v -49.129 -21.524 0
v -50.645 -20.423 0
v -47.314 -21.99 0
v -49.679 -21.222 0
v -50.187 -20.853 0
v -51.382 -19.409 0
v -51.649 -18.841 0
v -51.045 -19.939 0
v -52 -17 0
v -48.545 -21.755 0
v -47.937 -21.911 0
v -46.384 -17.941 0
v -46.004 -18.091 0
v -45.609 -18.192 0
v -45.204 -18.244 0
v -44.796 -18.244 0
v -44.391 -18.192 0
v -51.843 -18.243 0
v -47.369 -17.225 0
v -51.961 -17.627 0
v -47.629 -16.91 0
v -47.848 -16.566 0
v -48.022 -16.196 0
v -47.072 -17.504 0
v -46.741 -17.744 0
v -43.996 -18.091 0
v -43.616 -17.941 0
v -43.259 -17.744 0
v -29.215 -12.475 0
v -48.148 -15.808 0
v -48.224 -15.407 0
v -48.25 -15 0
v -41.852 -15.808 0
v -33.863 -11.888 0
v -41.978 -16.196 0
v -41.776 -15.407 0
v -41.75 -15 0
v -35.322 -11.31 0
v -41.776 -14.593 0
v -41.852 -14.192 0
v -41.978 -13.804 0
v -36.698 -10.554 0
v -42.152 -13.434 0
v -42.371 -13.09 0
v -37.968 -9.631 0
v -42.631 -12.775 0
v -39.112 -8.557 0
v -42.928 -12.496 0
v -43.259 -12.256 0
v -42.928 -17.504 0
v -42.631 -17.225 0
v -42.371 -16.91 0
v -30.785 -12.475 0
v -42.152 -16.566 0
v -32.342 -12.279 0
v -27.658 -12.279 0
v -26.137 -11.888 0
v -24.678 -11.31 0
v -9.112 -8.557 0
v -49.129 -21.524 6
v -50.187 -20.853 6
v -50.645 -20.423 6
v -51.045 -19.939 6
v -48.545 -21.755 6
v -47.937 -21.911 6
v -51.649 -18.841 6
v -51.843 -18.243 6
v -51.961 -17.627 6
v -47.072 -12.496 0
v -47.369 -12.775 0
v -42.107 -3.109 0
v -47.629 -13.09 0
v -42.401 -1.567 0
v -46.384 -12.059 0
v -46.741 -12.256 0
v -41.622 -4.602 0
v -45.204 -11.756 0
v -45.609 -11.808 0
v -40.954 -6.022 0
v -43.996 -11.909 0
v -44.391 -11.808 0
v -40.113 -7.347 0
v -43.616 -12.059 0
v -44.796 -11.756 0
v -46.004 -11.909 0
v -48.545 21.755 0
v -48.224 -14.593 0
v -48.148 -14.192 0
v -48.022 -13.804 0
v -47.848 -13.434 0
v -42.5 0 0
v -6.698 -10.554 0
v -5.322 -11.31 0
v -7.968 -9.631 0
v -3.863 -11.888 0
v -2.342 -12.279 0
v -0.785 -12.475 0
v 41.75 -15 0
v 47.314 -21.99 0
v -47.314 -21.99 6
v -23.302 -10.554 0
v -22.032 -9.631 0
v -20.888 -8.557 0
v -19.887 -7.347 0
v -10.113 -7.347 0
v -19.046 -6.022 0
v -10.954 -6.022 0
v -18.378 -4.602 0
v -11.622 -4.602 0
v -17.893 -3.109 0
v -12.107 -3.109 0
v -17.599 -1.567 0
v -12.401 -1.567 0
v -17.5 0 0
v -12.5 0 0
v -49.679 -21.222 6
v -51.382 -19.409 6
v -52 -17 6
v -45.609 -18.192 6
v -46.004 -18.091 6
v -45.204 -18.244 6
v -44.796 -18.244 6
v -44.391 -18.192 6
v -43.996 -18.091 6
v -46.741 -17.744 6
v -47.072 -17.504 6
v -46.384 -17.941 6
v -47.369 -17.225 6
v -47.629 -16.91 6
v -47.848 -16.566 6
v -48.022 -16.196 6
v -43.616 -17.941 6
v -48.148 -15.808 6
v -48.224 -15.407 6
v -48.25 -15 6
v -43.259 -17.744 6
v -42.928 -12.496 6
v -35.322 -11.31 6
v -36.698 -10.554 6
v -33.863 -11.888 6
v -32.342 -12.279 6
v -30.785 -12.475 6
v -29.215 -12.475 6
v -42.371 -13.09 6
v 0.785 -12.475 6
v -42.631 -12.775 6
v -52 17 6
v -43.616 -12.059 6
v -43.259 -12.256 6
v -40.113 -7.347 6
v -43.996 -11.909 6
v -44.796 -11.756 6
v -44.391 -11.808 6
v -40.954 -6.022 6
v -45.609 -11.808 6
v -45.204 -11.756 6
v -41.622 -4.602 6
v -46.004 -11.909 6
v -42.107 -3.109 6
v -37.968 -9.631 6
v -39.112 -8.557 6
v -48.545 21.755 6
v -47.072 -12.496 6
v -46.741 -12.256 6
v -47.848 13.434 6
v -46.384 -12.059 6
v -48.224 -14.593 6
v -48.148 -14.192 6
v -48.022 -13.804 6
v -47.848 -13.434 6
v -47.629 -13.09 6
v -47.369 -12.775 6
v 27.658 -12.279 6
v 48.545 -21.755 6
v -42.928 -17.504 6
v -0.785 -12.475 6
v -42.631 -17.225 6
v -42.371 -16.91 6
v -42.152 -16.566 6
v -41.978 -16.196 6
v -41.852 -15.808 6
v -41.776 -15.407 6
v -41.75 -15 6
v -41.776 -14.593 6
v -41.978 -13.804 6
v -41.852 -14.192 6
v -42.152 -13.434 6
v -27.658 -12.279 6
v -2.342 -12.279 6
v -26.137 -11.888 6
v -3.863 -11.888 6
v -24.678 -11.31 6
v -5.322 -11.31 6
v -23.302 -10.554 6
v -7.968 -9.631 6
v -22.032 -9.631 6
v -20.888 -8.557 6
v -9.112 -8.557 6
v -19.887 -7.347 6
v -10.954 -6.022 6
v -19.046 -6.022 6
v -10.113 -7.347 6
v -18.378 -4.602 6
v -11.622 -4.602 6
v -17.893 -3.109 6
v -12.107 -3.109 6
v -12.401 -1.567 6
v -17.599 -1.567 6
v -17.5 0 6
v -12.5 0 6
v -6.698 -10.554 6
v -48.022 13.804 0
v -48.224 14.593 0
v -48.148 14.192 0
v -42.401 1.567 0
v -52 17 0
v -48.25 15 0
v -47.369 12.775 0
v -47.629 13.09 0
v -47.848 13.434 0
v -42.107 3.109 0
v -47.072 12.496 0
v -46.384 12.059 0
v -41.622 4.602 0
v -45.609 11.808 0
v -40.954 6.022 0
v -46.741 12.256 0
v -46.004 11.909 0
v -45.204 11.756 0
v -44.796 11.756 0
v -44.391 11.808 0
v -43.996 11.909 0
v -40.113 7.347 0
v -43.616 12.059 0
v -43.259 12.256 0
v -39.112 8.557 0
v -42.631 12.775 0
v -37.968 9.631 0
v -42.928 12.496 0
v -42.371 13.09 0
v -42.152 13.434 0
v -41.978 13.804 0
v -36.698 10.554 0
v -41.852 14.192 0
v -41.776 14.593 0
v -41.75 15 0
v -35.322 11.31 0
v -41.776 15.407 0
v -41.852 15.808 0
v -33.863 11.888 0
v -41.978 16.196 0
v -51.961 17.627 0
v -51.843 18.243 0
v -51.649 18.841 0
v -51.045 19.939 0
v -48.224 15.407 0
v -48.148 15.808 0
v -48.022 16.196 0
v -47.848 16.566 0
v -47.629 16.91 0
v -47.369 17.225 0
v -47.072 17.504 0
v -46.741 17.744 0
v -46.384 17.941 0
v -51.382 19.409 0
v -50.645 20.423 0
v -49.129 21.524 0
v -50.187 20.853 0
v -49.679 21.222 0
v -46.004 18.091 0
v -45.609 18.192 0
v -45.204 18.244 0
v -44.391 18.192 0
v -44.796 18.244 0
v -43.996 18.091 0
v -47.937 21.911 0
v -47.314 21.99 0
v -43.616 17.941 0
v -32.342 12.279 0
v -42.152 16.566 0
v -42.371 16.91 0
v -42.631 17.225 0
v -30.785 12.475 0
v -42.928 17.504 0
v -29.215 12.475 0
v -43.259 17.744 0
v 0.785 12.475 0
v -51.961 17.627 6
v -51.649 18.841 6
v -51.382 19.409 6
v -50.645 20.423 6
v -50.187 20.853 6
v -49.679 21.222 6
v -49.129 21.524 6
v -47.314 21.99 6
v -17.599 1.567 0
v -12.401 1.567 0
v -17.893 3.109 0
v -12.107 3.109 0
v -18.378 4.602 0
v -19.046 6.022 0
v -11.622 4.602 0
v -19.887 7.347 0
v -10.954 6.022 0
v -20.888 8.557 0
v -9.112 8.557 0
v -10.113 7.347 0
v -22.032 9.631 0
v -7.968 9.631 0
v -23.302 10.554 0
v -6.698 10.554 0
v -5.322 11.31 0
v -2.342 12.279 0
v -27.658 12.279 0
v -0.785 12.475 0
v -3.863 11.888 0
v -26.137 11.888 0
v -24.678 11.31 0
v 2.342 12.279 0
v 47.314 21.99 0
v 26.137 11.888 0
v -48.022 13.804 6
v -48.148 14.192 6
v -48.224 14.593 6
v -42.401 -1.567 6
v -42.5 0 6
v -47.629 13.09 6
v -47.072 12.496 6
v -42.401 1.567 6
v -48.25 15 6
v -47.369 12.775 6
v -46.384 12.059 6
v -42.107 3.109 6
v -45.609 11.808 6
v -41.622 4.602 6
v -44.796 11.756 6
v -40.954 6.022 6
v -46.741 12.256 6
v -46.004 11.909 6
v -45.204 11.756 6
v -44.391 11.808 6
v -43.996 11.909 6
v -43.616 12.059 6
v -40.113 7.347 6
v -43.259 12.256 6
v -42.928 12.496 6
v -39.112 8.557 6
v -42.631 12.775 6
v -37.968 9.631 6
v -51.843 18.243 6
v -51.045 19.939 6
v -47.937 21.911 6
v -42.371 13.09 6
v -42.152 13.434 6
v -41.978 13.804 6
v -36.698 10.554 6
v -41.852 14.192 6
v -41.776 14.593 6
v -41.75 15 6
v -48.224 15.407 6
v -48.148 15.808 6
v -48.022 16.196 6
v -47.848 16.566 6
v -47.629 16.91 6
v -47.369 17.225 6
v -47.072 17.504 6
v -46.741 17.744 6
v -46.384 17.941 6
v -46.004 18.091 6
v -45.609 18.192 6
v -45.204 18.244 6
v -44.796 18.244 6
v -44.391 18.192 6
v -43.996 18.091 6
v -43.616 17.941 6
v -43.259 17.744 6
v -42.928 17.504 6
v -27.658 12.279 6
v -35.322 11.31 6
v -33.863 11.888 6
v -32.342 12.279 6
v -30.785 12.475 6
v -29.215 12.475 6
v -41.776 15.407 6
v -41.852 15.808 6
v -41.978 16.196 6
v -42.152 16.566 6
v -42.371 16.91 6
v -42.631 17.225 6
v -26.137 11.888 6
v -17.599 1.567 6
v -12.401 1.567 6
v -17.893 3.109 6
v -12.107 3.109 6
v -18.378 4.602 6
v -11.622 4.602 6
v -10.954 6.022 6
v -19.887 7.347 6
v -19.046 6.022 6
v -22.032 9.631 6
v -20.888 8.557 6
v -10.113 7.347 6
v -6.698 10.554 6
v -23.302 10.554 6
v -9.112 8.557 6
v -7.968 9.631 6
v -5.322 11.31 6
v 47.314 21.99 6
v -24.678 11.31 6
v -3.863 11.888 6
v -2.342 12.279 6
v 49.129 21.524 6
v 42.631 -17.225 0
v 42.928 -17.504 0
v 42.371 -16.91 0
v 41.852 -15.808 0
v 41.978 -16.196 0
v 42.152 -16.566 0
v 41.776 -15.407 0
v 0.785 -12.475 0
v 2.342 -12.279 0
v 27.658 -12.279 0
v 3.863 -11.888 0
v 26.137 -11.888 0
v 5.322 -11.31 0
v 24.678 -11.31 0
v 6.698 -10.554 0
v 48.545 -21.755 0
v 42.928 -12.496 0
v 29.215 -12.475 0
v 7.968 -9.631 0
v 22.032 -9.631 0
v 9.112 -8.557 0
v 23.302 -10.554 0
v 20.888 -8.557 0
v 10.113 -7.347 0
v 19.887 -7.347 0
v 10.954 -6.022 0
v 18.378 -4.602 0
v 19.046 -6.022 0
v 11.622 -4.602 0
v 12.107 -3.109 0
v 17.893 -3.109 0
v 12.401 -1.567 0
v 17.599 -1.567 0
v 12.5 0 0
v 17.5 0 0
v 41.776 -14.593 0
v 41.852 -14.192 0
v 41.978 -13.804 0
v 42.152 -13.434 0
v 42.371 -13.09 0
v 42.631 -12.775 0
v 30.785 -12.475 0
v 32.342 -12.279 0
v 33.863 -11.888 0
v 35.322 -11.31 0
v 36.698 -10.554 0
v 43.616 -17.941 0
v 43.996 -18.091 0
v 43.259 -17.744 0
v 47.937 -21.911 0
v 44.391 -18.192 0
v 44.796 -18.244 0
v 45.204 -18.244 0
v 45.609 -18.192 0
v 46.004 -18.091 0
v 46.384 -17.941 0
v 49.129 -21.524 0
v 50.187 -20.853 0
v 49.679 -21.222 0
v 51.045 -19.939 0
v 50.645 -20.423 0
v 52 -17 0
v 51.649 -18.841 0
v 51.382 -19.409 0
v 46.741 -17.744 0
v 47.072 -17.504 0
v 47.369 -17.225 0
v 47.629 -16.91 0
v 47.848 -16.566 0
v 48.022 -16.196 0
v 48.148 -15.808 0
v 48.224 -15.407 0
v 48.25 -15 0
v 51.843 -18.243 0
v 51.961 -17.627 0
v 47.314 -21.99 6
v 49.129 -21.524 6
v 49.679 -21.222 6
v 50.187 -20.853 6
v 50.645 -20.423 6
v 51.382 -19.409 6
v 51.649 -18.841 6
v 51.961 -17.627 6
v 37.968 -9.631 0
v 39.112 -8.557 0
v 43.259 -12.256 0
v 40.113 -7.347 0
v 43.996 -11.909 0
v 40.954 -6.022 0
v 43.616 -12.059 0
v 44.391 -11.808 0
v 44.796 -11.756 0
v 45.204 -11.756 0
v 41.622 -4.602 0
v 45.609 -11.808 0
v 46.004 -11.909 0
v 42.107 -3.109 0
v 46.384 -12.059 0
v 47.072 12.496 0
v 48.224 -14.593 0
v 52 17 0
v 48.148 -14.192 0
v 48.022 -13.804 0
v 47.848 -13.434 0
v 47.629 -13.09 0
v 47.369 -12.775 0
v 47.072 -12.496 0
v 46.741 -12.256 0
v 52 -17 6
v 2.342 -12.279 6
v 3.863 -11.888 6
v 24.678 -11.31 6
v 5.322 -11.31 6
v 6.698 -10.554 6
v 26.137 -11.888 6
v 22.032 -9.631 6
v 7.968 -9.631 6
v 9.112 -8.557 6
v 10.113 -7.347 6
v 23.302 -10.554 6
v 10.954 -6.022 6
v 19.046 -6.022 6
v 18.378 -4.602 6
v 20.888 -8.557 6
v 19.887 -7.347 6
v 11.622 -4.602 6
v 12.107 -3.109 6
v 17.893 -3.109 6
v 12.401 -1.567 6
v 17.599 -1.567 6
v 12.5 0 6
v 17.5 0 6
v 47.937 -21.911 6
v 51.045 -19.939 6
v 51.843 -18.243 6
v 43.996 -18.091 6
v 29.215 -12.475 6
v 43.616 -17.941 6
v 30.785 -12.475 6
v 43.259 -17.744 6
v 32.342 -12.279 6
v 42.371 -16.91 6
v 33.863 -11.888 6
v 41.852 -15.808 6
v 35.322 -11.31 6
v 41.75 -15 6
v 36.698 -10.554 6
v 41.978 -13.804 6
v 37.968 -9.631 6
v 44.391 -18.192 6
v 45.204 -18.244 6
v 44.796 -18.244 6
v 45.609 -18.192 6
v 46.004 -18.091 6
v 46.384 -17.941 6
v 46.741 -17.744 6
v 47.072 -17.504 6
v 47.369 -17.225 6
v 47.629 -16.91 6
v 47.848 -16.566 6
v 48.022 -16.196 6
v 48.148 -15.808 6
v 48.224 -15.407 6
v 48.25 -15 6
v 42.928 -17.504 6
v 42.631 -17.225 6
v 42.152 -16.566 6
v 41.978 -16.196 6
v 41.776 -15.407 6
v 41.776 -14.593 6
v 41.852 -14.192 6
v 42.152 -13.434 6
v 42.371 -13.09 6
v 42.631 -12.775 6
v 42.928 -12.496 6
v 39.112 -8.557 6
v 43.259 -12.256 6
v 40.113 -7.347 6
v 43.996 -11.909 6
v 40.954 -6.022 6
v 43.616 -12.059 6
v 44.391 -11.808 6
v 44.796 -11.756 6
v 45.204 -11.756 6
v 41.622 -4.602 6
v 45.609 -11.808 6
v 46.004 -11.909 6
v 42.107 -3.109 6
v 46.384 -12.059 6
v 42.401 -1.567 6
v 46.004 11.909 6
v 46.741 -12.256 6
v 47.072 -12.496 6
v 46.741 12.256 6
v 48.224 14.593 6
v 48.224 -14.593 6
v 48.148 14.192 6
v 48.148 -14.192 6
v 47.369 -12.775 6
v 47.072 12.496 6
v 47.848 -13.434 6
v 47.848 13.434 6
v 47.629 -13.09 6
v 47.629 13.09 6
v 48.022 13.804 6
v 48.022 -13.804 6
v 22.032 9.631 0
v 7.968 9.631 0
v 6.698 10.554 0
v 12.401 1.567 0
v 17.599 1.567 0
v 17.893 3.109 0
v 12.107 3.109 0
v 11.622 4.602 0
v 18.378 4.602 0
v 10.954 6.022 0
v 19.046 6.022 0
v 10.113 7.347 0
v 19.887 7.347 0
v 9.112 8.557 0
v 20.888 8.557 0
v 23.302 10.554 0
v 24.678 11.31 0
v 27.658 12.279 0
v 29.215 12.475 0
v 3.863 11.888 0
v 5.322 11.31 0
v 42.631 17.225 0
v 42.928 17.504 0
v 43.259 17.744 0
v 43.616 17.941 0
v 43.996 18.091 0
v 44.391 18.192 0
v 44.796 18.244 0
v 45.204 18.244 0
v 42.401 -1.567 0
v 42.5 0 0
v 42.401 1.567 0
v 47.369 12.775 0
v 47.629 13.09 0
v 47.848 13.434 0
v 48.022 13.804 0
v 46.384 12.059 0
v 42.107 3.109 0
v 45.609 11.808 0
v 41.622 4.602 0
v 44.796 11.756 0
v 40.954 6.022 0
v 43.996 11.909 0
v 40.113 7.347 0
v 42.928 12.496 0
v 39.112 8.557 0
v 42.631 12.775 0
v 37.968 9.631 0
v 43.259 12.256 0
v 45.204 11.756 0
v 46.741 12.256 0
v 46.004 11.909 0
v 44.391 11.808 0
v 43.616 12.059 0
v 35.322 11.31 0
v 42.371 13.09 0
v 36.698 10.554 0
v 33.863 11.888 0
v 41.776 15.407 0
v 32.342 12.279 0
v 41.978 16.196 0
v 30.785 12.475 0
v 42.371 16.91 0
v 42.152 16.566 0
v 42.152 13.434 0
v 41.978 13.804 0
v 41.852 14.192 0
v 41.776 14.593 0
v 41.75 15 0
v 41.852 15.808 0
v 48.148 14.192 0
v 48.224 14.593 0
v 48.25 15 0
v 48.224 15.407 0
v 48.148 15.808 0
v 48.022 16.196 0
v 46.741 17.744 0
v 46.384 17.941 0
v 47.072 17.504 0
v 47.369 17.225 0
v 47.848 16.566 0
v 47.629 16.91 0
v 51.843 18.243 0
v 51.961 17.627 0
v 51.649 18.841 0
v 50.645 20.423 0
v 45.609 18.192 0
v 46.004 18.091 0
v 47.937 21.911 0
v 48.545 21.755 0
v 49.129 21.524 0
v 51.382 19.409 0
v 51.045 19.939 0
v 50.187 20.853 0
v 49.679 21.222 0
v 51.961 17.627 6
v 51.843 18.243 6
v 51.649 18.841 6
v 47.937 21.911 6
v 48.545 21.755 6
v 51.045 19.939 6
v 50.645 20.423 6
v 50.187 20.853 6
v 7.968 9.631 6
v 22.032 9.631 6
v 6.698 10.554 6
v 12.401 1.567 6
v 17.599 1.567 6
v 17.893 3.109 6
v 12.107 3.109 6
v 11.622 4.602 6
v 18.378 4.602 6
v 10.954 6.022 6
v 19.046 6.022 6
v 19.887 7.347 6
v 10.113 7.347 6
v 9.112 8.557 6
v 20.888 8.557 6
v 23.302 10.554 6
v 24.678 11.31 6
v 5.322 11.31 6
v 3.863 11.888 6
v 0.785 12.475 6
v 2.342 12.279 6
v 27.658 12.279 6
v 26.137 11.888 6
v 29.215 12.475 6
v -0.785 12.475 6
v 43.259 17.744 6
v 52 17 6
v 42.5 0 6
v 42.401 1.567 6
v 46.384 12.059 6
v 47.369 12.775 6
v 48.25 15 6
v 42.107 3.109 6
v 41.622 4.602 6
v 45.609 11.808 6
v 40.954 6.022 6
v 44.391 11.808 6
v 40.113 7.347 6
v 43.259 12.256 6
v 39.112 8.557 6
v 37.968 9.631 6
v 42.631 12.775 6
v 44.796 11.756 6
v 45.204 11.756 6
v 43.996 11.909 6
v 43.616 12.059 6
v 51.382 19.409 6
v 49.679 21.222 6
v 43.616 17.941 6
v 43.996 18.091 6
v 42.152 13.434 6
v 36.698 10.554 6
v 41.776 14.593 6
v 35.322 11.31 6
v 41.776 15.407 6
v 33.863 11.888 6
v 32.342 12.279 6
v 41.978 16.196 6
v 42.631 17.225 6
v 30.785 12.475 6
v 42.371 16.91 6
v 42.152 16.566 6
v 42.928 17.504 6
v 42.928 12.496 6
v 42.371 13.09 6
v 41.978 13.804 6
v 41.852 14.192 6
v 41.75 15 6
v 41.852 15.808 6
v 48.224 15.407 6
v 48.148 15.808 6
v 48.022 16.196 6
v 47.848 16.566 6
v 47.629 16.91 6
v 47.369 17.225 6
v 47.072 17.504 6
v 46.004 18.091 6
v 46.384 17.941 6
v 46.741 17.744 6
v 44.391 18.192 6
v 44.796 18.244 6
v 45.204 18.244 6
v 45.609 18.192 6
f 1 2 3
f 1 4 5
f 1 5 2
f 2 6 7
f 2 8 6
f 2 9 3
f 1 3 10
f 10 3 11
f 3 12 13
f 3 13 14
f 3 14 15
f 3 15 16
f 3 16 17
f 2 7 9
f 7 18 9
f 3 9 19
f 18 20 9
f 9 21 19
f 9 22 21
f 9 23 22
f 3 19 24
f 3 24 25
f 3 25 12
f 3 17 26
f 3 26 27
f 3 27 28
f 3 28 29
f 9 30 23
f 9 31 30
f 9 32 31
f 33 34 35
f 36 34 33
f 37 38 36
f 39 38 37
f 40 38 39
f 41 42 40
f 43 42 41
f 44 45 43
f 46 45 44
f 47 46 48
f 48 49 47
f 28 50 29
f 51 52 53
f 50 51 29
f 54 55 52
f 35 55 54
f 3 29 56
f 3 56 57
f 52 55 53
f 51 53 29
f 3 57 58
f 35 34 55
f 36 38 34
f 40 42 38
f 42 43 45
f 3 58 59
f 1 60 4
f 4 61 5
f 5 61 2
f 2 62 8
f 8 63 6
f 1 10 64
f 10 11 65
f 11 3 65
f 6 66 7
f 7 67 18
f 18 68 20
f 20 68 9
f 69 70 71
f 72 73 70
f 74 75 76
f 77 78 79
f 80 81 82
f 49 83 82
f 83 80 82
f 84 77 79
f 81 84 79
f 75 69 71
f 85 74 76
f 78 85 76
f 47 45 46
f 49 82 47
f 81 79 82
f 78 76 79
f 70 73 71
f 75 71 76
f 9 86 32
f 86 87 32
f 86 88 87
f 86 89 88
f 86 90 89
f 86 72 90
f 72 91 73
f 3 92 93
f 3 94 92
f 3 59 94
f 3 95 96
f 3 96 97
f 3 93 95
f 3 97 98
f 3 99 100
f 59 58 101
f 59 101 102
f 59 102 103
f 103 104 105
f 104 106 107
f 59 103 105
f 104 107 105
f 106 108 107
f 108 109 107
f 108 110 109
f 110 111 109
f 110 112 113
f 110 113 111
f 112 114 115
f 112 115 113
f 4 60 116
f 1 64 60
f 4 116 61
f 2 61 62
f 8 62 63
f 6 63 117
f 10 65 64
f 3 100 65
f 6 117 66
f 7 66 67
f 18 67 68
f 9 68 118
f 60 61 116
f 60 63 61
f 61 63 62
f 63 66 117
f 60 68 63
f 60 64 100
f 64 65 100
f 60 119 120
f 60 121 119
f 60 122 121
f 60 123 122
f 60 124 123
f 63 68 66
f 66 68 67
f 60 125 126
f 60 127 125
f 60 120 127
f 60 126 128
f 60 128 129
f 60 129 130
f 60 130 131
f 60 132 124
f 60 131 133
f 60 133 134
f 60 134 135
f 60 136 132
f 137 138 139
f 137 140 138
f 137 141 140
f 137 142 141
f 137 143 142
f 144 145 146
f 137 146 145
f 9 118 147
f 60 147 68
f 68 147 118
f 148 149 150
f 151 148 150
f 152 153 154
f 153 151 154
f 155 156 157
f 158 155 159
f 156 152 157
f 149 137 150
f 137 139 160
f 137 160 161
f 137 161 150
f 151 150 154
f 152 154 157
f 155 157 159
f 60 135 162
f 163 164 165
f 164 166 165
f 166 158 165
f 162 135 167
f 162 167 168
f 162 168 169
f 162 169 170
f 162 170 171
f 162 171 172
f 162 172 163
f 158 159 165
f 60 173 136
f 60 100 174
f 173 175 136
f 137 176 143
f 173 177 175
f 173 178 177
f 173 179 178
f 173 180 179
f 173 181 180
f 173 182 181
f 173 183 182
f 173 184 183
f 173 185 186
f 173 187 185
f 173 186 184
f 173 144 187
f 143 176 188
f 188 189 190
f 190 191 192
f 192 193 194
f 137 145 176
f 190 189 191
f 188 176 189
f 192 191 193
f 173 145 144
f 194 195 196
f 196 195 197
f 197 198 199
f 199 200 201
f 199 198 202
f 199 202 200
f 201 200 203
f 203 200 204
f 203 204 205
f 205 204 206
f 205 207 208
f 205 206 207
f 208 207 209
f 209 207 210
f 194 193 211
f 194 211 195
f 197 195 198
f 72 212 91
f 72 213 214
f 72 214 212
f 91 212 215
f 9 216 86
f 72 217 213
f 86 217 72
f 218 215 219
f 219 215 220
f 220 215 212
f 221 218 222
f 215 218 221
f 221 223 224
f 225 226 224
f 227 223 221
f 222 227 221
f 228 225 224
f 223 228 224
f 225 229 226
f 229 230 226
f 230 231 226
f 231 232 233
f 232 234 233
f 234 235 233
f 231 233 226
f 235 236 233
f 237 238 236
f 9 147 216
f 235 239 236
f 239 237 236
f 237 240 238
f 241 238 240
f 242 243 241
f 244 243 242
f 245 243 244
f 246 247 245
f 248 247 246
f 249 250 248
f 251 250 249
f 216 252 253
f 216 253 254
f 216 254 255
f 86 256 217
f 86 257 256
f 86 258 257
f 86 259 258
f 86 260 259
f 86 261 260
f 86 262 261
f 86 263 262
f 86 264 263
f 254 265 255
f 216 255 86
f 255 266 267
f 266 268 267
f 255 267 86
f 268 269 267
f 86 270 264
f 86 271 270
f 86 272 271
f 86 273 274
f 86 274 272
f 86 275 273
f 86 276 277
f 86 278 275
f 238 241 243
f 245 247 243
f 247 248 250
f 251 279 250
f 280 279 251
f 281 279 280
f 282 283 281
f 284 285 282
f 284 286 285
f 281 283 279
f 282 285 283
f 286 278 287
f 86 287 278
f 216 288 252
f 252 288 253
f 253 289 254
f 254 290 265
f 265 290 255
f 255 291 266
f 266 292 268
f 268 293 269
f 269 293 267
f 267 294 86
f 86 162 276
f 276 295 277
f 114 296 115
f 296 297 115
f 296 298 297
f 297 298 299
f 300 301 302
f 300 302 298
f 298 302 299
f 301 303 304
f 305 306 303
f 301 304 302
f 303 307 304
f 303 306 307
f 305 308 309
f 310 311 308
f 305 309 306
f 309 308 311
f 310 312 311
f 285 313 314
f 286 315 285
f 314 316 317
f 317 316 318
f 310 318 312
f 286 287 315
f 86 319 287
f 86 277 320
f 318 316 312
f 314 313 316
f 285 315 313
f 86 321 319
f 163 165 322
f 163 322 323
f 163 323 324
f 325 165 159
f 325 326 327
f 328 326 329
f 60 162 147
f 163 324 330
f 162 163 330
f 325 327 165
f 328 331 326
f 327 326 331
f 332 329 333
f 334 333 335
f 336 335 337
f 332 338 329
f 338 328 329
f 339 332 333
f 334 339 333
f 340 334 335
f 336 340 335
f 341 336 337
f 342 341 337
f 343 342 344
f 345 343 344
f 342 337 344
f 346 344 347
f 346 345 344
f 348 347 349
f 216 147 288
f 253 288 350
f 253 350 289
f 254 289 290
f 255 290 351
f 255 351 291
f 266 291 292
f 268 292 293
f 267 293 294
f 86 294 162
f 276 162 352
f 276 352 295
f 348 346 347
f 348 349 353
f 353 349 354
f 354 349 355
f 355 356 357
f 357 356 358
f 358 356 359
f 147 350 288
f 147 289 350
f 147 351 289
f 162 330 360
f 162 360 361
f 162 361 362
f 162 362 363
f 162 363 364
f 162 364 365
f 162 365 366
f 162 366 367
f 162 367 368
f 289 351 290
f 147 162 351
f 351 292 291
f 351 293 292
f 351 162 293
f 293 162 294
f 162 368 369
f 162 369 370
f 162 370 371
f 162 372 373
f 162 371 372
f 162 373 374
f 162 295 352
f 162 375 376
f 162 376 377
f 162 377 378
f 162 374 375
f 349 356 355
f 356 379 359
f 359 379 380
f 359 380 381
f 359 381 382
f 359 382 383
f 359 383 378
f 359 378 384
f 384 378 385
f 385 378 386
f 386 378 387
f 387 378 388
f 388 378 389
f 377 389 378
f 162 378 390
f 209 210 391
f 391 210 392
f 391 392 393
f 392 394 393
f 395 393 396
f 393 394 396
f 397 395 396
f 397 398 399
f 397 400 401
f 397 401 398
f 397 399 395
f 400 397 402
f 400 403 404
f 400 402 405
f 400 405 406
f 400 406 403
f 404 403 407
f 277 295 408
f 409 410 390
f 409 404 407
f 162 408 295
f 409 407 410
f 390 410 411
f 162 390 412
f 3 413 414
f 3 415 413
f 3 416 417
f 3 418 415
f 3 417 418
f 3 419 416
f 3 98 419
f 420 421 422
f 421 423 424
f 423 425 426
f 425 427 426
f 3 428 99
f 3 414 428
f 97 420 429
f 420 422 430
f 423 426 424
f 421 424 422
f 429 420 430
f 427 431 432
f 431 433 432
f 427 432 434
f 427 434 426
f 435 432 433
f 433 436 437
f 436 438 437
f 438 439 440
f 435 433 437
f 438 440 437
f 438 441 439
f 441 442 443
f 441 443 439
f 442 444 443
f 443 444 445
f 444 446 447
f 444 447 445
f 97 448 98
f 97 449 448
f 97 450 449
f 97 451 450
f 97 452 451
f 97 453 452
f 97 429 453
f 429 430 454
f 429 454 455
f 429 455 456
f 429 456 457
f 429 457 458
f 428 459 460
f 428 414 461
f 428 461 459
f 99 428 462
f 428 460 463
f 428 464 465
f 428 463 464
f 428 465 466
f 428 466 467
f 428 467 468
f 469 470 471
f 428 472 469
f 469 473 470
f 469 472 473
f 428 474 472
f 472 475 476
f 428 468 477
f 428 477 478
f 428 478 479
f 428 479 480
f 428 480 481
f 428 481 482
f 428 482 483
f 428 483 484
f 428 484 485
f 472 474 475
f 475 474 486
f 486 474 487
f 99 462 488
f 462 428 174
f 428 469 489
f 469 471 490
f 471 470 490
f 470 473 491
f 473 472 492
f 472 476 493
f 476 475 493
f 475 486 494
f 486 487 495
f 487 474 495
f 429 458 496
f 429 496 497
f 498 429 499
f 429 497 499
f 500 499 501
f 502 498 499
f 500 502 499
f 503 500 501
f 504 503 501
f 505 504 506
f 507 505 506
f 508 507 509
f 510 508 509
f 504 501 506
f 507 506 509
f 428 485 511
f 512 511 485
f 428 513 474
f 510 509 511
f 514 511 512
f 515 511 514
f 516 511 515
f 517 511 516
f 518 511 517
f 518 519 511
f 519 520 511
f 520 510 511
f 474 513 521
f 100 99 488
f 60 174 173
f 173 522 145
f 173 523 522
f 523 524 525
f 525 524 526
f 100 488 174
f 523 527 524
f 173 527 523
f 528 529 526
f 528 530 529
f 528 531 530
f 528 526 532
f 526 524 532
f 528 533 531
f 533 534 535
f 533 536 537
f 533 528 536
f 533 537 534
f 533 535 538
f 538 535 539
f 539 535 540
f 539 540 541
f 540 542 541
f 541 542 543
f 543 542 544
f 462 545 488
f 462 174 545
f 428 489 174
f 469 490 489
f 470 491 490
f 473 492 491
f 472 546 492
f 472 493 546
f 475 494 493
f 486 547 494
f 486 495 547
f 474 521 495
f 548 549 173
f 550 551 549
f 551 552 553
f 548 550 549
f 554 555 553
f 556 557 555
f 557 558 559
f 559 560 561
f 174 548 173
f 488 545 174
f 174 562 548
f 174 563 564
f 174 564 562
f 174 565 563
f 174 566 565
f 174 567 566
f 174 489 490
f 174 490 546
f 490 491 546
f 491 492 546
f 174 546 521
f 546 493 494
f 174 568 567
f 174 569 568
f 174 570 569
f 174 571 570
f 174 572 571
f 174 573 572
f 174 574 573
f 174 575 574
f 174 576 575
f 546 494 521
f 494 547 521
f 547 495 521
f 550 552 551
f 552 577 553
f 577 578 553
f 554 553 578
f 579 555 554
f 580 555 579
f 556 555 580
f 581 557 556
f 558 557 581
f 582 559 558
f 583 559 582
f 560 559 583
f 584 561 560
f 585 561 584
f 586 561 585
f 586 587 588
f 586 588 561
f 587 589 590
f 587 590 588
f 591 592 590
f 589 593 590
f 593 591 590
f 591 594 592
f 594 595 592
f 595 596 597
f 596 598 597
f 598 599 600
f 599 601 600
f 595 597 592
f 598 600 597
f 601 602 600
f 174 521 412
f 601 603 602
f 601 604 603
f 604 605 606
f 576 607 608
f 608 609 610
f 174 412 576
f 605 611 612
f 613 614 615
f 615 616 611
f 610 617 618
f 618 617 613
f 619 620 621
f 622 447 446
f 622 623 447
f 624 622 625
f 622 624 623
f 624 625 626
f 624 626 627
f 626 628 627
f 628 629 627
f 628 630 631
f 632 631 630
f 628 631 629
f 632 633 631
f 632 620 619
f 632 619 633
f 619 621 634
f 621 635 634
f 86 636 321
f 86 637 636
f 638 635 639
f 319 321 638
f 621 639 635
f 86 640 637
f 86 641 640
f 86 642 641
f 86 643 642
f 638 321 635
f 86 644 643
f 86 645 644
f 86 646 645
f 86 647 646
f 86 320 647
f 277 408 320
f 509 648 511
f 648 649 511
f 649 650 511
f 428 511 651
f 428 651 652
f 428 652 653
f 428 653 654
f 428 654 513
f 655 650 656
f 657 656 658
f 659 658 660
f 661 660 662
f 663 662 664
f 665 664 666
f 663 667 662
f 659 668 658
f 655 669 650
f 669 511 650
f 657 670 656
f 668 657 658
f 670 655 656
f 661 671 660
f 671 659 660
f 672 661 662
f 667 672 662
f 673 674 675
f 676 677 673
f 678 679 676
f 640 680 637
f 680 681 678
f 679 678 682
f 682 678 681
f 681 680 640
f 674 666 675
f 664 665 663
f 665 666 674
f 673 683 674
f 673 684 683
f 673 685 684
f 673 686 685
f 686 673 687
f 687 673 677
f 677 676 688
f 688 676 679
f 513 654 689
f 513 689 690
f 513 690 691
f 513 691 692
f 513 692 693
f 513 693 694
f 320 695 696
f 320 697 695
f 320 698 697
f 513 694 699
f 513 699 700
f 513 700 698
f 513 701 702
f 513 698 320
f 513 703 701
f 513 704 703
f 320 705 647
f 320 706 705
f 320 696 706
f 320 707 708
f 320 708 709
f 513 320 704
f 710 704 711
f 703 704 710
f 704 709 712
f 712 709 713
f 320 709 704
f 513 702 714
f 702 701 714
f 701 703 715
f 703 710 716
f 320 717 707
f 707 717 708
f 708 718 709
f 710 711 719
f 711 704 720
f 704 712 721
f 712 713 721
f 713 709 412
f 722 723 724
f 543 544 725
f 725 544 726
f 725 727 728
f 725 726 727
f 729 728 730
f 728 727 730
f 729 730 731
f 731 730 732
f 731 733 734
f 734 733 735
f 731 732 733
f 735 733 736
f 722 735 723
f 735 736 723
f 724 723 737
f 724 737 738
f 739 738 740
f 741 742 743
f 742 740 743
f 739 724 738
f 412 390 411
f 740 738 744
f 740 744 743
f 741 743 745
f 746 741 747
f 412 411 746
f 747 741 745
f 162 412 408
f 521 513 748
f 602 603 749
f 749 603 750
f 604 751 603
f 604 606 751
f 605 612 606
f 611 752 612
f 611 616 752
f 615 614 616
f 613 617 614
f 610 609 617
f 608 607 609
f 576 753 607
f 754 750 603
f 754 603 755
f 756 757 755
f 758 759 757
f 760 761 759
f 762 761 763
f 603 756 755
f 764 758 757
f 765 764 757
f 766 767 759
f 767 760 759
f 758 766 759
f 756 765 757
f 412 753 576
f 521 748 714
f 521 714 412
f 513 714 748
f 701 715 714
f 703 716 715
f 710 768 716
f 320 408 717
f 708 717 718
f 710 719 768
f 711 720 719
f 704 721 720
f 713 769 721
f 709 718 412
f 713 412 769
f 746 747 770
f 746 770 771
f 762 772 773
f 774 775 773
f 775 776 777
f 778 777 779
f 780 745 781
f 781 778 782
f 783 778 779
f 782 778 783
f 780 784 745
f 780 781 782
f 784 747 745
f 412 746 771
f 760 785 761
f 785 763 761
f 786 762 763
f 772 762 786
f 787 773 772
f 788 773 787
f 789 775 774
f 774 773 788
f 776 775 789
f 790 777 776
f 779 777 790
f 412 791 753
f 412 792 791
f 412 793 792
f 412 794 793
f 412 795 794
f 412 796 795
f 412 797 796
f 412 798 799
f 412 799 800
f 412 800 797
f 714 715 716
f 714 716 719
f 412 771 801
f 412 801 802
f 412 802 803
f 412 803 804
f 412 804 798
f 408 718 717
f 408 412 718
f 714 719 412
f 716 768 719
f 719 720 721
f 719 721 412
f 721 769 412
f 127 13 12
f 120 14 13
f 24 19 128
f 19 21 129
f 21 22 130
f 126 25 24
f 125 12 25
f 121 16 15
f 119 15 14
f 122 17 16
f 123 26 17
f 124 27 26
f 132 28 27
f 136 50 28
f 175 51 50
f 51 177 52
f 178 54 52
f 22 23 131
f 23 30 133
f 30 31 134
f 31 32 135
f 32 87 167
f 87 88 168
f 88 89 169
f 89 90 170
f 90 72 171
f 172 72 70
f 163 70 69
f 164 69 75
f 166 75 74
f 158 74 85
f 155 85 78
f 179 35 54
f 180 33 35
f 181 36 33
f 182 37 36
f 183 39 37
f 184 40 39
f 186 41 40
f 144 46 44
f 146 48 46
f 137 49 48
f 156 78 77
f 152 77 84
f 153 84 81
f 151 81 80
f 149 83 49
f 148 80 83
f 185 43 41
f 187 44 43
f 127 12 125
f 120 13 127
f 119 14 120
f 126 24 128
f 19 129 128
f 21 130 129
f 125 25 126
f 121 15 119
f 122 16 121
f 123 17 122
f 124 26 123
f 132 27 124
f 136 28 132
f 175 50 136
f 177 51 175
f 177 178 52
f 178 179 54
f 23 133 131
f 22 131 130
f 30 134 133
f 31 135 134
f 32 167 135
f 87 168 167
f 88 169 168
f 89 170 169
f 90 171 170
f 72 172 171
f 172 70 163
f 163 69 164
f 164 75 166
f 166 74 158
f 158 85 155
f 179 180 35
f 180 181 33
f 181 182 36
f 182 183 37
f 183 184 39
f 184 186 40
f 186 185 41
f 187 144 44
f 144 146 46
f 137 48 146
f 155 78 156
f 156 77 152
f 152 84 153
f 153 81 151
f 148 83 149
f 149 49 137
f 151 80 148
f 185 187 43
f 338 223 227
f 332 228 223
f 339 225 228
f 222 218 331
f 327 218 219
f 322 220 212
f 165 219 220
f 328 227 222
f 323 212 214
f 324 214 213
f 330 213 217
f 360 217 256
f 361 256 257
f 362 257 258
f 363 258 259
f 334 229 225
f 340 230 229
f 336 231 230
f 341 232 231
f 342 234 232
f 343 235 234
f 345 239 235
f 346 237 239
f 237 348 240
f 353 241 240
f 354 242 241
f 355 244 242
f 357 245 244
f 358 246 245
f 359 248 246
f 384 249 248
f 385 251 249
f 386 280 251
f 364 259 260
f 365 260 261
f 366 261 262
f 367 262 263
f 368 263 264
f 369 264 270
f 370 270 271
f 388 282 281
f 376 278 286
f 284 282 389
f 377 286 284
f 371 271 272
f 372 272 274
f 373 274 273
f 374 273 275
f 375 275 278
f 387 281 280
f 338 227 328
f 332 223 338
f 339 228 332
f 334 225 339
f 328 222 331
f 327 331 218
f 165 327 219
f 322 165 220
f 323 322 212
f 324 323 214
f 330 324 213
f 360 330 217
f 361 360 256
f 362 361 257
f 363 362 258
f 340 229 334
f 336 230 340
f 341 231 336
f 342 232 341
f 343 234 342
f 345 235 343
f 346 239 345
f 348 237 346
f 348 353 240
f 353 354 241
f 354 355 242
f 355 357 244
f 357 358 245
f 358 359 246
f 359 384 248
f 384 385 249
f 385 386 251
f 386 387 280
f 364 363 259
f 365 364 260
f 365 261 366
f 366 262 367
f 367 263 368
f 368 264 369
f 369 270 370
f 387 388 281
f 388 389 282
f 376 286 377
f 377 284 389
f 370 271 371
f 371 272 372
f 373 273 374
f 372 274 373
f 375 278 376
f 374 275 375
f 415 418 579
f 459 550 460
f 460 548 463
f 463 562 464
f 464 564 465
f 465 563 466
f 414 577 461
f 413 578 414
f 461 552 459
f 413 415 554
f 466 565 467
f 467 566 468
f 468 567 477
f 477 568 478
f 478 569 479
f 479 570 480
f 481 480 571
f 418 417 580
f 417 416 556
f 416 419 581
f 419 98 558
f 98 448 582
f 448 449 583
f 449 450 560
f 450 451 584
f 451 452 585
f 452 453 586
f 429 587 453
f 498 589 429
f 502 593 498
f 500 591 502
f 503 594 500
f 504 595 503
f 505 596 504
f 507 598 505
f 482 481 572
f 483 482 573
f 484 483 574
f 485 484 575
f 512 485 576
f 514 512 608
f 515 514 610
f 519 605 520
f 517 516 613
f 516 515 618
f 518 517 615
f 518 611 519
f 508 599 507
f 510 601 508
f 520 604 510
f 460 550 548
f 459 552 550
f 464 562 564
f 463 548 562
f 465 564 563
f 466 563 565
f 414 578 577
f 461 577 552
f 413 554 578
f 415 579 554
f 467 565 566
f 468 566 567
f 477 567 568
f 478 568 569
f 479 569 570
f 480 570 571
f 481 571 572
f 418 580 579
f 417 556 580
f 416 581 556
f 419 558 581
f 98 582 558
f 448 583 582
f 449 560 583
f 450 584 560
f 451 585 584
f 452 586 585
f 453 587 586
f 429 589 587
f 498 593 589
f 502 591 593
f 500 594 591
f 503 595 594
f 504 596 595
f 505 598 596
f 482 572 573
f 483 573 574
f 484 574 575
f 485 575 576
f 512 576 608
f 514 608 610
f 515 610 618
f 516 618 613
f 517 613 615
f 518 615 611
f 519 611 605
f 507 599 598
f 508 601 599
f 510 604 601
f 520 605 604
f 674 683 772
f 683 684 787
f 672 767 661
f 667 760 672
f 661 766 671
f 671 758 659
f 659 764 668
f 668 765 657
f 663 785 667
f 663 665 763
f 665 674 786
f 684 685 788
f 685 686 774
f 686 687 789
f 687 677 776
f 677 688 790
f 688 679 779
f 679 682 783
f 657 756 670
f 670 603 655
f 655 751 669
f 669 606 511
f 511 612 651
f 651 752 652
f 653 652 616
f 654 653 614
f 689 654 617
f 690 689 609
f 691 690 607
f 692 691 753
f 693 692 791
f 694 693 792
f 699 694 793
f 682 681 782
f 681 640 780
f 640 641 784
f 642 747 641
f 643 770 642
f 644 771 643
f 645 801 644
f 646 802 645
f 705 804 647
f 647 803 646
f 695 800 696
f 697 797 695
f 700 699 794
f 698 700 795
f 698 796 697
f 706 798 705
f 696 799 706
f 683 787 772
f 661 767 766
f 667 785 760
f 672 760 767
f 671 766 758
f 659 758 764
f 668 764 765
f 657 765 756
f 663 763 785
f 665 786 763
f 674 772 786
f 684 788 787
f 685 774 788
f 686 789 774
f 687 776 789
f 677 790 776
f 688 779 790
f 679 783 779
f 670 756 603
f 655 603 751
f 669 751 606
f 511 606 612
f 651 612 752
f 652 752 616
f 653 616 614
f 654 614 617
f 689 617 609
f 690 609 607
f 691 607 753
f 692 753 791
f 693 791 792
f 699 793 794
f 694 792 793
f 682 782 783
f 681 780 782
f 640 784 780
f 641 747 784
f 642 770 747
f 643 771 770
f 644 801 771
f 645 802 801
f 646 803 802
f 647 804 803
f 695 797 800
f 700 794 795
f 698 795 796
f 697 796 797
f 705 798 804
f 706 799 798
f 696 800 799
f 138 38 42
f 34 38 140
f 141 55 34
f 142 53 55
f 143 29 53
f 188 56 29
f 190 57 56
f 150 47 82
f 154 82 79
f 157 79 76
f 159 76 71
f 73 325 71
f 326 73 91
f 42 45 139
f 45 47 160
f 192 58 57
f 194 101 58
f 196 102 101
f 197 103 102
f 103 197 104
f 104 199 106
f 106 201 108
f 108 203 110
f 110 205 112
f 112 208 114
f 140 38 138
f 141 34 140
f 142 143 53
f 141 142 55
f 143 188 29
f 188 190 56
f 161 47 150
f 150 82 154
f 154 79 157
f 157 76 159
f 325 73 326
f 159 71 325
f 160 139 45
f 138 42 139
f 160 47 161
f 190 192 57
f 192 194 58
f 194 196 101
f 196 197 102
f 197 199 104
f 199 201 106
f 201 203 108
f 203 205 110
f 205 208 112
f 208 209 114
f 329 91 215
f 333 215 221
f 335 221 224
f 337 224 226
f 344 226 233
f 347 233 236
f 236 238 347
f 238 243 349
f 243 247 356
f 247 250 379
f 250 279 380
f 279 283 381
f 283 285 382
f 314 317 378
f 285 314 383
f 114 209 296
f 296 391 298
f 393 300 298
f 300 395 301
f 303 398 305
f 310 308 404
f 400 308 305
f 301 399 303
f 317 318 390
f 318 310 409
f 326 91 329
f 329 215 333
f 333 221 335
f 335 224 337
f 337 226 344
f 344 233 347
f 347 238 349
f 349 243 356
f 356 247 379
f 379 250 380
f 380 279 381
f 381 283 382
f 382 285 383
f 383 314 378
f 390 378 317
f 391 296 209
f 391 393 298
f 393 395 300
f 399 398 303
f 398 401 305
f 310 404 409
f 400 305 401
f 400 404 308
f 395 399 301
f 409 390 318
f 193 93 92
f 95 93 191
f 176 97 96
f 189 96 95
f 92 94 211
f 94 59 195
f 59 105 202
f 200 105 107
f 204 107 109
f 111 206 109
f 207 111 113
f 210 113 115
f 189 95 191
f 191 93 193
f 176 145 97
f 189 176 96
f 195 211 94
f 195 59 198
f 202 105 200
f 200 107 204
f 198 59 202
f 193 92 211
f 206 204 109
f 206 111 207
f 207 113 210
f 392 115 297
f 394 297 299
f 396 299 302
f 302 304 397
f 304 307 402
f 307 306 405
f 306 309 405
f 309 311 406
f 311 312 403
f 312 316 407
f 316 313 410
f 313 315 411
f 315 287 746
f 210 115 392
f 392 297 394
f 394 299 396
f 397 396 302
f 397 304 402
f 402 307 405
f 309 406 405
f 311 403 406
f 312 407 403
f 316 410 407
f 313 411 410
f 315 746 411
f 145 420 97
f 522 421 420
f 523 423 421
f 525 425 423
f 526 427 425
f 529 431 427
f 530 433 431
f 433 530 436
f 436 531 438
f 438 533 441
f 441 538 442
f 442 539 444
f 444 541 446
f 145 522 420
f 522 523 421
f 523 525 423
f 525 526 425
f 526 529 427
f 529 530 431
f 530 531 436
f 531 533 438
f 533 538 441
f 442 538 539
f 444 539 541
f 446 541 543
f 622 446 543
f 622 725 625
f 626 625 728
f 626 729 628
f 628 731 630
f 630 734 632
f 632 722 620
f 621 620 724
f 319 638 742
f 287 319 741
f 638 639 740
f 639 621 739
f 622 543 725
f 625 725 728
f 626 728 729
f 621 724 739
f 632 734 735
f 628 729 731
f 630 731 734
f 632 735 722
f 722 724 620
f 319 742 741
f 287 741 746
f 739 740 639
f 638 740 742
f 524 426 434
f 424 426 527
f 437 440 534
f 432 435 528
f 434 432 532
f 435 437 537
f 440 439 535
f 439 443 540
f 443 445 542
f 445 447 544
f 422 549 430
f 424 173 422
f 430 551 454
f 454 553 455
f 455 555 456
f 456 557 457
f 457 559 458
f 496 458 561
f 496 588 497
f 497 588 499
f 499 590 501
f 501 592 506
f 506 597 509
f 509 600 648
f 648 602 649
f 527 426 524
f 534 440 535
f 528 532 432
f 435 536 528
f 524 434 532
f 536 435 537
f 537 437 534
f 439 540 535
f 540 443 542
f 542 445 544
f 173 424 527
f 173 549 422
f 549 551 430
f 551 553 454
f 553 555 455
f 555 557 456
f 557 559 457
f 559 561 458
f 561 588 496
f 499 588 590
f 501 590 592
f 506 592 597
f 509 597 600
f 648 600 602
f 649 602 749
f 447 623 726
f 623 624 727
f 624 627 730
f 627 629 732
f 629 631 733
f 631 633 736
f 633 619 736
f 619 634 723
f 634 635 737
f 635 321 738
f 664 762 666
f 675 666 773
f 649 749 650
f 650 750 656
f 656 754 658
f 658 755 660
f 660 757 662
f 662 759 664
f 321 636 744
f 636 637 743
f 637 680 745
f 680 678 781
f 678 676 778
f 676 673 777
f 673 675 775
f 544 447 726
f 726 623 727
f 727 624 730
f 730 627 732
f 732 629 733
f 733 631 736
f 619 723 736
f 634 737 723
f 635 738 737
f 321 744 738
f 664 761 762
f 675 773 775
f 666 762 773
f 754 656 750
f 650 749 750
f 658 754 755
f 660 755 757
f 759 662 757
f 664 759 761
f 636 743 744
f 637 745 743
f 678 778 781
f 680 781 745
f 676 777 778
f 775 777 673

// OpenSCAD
$fn = 50;

difference() {
	union() {
		hull() {
			translate(v = [-47.0, 17.0, 0]) {
				cylinder(h = 6, r = 5);
			}
			translate(v = [47.0, 17.0, 0]) {
				cylinder(h = 6, r = 5);
			}
			translate(v = [-47.0, -17.0, 0]) {
				cylinder(h = 6, r = 5);
			}
			translate(v = [47.0, -17.0, 0]) {
				cylinder(h = 6, r = 5);
			}
		}
	}
	union() {
		translate(v = [-45.0, -15.0, -100.0]) {
			cylinder(h = 200, r = 3.25);
		}
		translate(v = [-45.0, 15.0, -100.0]) {
			cylinder(h = 200, r = 3.25);
		}
		translate(v = [45.0, -15.0, -100.0]) {
			cylinder(h = 200, r = 3.25);
		}
		translate(v = [45.0, 15.0, -100.0]) {
			cylinder(h = 200, r = 3.25);
		}
		translate(v = [-45.0, -15.0, -100.0]) {
			cylinder(h = 200, r = 1.8);
		}
		translate(v = [-45.0, 15.0, -100.0]) {
			cylinder(h = 200, r = 1.8);
		}
		translate(v = [45.0, -15.0, -100.0]) {
			cylinder(h = 200, r = 1.8);
		}
		translate(v = [45.0, 15.0, -100.0]) {
			cylinder(h = 200, r = 1.8);
		}
		translate(v = [-30.0, 0, 0.0]) {
			cylinder(h = 6, r = 12.5);
		}
		cylinder(h = 6, r = 12.5);
		translate(v = [30.0, 0, 0.0]) {
			cylinder(h = 6, r = 12.5);
		}
	}
}
